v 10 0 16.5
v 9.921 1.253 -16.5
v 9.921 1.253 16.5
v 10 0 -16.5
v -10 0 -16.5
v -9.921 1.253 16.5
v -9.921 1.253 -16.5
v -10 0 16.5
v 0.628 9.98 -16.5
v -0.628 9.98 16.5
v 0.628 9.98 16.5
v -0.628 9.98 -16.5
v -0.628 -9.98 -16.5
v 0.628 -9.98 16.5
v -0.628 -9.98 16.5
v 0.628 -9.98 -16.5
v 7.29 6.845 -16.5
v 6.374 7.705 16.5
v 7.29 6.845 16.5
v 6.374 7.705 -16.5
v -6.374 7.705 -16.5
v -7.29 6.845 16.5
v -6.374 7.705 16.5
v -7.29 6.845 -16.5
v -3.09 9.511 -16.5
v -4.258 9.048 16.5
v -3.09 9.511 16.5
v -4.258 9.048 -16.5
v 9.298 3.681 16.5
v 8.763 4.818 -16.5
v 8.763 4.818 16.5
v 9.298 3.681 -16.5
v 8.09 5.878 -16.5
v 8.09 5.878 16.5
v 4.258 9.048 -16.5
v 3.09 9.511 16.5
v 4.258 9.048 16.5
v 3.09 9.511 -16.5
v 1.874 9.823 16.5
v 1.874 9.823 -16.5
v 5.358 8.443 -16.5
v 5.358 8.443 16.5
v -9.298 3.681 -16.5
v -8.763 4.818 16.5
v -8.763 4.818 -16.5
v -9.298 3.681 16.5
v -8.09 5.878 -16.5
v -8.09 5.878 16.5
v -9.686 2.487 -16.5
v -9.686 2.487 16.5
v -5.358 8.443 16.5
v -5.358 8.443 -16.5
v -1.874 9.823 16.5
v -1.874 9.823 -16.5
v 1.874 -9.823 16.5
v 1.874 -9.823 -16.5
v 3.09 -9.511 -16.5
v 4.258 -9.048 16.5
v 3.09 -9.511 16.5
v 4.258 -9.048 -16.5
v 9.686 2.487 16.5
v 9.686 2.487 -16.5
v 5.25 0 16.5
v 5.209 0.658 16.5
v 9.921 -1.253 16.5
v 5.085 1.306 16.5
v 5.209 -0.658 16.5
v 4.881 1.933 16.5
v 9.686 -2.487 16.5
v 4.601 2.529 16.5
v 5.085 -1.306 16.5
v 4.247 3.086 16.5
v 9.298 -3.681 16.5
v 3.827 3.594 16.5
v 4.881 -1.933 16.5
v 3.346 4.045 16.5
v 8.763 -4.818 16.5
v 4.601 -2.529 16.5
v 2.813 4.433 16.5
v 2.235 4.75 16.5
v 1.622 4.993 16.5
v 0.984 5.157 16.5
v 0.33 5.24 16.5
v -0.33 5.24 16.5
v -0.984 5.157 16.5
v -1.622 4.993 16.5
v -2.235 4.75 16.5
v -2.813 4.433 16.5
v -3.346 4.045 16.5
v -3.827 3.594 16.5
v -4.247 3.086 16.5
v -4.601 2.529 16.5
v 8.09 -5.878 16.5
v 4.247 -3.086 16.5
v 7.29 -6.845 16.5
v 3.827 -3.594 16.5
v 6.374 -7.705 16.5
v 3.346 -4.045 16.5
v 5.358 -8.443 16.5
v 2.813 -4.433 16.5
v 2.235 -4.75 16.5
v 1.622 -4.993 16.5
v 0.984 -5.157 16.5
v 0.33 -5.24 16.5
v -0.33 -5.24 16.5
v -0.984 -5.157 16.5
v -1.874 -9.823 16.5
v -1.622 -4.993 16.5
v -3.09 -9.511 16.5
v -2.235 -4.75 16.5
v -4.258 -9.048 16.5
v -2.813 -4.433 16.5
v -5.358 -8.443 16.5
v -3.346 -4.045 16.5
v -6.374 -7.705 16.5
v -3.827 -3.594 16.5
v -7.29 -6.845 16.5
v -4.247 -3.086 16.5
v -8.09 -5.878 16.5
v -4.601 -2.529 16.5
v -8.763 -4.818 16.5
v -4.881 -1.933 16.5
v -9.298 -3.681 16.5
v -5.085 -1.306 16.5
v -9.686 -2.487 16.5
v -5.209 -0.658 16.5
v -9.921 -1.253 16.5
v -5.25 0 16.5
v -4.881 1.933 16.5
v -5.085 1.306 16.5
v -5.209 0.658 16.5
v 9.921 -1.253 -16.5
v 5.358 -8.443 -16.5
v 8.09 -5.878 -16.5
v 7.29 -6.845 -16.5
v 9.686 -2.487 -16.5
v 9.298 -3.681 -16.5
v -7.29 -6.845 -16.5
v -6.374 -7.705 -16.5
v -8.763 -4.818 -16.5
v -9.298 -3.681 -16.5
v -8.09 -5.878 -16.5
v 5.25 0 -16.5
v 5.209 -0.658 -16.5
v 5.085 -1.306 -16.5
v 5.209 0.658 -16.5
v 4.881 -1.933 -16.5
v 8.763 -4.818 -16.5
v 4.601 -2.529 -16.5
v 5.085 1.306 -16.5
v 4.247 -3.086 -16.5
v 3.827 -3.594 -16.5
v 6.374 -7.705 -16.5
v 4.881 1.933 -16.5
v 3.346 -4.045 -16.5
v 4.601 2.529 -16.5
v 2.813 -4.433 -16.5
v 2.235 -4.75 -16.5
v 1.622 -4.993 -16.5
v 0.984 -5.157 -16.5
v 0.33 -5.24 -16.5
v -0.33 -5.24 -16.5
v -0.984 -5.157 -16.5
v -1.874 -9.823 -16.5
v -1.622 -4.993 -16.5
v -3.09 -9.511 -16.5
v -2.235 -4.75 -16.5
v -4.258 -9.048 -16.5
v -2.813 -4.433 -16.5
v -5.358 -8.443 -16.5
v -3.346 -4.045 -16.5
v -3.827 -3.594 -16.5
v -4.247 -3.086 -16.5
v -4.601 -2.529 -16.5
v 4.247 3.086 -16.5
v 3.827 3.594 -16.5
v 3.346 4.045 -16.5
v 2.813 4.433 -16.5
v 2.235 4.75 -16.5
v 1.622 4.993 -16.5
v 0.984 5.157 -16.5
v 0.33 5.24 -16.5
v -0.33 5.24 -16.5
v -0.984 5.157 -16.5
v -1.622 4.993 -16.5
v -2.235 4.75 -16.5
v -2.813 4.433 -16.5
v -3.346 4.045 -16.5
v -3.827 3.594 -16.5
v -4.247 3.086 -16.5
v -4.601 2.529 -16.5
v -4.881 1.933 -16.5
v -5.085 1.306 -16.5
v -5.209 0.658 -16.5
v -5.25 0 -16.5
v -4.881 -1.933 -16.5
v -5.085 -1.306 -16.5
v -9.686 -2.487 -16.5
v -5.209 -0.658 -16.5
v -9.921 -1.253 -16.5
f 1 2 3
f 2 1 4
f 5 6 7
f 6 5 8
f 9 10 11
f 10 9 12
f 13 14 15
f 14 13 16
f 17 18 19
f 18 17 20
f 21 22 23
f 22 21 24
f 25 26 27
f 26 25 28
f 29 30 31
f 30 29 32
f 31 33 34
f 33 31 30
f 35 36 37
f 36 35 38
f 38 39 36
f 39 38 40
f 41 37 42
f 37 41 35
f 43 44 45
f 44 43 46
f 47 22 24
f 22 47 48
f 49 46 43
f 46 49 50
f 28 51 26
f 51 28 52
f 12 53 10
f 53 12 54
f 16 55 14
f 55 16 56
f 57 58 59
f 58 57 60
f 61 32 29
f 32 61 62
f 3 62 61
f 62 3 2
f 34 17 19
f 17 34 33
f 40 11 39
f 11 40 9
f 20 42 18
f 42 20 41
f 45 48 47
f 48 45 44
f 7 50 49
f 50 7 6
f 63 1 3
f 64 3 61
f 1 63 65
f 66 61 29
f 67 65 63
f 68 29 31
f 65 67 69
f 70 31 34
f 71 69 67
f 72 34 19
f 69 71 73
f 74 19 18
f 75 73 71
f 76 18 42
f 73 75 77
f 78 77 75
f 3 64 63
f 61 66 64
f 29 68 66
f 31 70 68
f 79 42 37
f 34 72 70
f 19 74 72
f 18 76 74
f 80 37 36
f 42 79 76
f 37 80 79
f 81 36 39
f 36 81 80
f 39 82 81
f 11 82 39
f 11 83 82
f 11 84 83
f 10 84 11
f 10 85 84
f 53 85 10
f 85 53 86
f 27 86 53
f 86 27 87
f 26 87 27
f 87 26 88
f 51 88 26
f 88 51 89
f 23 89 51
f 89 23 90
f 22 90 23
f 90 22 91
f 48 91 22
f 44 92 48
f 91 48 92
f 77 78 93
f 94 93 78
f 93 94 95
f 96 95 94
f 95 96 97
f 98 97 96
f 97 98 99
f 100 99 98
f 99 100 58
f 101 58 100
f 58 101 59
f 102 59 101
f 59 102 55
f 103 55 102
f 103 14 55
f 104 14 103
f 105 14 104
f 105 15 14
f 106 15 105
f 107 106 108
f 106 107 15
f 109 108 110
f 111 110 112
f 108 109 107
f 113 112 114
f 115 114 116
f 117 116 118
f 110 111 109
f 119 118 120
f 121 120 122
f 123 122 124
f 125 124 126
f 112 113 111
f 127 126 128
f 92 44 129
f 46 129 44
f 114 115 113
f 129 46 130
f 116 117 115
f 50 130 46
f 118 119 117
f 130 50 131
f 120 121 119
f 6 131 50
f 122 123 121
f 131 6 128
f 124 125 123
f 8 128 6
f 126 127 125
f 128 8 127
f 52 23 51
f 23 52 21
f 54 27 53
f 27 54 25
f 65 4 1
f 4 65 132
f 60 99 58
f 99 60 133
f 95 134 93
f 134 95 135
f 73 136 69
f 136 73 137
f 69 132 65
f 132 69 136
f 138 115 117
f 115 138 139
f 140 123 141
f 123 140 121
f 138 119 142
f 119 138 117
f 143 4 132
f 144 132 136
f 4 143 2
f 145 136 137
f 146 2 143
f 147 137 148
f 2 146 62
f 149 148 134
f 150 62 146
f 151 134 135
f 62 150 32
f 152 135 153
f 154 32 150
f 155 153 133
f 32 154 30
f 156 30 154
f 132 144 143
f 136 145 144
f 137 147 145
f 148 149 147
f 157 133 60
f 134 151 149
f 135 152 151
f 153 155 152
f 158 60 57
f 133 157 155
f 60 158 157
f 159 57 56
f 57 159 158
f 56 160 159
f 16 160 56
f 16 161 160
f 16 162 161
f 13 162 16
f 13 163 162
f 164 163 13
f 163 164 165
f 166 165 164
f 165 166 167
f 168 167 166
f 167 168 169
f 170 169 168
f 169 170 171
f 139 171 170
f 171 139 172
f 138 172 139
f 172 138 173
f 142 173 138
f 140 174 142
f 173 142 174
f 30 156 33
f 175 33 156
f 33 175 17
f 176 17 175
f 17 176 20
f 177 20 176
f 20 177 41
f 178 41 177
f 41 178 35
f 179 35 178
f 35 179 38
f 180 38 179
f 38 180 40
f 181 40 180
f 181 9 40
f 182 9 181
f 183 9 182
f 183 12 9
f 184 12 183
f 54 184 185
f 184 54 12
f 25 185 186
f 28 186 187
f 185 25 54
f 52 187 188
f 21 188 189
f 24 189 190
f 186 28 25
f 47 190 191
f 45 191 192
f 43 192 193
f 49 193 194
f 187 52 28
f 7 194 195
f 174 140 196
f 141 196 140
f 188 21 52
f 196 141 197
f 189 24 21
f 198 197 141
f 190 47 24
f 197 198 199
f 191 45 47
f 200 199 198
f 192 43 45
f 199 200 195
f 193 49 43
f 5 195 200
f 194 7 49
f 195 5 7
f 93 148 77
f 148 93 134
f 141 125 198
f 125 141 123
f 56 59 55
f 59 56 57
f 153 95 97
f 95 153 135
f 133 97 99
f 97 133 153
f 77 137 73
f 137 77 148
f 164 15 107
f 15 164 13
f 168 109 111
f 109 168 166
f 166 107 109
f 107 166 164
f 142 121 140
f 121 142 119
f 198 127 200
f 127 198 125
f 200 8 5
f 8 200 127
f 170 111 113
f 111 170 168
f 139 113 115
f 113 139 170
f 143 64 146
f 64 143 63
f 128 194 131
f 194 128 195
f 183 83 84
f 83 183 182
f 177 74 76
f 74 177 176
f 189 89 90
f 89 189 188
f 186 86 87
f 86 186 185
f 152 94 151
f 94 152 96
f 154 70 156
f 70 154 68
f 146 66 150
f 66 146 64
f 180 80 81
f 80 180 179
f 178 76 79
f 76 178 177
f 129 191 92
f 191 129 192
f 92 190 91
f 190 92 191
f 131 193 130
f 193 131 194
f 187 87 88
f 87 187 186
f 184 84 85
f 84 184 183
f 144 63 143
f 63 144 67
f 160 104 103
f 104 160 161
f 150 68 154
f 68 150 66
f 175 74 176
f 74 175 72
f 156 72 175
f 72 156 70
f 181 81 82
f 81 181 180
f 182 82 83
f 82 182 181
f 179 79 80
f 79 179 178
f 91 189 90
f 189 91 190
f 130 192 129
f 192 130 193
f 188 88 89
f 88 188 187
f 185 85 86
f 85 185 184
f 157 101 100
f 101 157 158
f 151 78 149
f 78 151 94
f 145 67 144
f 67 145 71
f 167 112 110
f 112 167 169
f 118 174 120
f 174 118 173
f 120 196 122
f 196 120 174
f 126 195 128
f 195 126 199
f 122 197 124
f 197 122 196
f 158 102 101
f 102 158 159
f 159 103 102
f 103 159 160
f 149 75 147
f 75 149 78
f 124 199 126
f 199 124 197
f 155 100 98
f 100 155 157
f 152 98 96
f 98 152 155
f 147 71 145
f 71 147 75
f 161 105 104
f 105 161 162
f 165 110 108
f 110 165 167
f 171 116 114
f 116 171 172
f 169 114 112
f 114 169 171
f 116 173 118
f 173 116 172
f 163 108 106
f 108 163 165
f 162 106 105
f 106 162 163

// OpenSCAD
$fn = 50;


difference() {
	union() {
		translate(v = [0, 0, -16.5000000000]) {
			cylinder(h = 33, r = 10.0000000000);
		}
	}
	union() {
		translate(v = [0, 0, -100.0000000000]) {
			cylinder(h = 200, r = 5.2500000000);
		}
	}
}
